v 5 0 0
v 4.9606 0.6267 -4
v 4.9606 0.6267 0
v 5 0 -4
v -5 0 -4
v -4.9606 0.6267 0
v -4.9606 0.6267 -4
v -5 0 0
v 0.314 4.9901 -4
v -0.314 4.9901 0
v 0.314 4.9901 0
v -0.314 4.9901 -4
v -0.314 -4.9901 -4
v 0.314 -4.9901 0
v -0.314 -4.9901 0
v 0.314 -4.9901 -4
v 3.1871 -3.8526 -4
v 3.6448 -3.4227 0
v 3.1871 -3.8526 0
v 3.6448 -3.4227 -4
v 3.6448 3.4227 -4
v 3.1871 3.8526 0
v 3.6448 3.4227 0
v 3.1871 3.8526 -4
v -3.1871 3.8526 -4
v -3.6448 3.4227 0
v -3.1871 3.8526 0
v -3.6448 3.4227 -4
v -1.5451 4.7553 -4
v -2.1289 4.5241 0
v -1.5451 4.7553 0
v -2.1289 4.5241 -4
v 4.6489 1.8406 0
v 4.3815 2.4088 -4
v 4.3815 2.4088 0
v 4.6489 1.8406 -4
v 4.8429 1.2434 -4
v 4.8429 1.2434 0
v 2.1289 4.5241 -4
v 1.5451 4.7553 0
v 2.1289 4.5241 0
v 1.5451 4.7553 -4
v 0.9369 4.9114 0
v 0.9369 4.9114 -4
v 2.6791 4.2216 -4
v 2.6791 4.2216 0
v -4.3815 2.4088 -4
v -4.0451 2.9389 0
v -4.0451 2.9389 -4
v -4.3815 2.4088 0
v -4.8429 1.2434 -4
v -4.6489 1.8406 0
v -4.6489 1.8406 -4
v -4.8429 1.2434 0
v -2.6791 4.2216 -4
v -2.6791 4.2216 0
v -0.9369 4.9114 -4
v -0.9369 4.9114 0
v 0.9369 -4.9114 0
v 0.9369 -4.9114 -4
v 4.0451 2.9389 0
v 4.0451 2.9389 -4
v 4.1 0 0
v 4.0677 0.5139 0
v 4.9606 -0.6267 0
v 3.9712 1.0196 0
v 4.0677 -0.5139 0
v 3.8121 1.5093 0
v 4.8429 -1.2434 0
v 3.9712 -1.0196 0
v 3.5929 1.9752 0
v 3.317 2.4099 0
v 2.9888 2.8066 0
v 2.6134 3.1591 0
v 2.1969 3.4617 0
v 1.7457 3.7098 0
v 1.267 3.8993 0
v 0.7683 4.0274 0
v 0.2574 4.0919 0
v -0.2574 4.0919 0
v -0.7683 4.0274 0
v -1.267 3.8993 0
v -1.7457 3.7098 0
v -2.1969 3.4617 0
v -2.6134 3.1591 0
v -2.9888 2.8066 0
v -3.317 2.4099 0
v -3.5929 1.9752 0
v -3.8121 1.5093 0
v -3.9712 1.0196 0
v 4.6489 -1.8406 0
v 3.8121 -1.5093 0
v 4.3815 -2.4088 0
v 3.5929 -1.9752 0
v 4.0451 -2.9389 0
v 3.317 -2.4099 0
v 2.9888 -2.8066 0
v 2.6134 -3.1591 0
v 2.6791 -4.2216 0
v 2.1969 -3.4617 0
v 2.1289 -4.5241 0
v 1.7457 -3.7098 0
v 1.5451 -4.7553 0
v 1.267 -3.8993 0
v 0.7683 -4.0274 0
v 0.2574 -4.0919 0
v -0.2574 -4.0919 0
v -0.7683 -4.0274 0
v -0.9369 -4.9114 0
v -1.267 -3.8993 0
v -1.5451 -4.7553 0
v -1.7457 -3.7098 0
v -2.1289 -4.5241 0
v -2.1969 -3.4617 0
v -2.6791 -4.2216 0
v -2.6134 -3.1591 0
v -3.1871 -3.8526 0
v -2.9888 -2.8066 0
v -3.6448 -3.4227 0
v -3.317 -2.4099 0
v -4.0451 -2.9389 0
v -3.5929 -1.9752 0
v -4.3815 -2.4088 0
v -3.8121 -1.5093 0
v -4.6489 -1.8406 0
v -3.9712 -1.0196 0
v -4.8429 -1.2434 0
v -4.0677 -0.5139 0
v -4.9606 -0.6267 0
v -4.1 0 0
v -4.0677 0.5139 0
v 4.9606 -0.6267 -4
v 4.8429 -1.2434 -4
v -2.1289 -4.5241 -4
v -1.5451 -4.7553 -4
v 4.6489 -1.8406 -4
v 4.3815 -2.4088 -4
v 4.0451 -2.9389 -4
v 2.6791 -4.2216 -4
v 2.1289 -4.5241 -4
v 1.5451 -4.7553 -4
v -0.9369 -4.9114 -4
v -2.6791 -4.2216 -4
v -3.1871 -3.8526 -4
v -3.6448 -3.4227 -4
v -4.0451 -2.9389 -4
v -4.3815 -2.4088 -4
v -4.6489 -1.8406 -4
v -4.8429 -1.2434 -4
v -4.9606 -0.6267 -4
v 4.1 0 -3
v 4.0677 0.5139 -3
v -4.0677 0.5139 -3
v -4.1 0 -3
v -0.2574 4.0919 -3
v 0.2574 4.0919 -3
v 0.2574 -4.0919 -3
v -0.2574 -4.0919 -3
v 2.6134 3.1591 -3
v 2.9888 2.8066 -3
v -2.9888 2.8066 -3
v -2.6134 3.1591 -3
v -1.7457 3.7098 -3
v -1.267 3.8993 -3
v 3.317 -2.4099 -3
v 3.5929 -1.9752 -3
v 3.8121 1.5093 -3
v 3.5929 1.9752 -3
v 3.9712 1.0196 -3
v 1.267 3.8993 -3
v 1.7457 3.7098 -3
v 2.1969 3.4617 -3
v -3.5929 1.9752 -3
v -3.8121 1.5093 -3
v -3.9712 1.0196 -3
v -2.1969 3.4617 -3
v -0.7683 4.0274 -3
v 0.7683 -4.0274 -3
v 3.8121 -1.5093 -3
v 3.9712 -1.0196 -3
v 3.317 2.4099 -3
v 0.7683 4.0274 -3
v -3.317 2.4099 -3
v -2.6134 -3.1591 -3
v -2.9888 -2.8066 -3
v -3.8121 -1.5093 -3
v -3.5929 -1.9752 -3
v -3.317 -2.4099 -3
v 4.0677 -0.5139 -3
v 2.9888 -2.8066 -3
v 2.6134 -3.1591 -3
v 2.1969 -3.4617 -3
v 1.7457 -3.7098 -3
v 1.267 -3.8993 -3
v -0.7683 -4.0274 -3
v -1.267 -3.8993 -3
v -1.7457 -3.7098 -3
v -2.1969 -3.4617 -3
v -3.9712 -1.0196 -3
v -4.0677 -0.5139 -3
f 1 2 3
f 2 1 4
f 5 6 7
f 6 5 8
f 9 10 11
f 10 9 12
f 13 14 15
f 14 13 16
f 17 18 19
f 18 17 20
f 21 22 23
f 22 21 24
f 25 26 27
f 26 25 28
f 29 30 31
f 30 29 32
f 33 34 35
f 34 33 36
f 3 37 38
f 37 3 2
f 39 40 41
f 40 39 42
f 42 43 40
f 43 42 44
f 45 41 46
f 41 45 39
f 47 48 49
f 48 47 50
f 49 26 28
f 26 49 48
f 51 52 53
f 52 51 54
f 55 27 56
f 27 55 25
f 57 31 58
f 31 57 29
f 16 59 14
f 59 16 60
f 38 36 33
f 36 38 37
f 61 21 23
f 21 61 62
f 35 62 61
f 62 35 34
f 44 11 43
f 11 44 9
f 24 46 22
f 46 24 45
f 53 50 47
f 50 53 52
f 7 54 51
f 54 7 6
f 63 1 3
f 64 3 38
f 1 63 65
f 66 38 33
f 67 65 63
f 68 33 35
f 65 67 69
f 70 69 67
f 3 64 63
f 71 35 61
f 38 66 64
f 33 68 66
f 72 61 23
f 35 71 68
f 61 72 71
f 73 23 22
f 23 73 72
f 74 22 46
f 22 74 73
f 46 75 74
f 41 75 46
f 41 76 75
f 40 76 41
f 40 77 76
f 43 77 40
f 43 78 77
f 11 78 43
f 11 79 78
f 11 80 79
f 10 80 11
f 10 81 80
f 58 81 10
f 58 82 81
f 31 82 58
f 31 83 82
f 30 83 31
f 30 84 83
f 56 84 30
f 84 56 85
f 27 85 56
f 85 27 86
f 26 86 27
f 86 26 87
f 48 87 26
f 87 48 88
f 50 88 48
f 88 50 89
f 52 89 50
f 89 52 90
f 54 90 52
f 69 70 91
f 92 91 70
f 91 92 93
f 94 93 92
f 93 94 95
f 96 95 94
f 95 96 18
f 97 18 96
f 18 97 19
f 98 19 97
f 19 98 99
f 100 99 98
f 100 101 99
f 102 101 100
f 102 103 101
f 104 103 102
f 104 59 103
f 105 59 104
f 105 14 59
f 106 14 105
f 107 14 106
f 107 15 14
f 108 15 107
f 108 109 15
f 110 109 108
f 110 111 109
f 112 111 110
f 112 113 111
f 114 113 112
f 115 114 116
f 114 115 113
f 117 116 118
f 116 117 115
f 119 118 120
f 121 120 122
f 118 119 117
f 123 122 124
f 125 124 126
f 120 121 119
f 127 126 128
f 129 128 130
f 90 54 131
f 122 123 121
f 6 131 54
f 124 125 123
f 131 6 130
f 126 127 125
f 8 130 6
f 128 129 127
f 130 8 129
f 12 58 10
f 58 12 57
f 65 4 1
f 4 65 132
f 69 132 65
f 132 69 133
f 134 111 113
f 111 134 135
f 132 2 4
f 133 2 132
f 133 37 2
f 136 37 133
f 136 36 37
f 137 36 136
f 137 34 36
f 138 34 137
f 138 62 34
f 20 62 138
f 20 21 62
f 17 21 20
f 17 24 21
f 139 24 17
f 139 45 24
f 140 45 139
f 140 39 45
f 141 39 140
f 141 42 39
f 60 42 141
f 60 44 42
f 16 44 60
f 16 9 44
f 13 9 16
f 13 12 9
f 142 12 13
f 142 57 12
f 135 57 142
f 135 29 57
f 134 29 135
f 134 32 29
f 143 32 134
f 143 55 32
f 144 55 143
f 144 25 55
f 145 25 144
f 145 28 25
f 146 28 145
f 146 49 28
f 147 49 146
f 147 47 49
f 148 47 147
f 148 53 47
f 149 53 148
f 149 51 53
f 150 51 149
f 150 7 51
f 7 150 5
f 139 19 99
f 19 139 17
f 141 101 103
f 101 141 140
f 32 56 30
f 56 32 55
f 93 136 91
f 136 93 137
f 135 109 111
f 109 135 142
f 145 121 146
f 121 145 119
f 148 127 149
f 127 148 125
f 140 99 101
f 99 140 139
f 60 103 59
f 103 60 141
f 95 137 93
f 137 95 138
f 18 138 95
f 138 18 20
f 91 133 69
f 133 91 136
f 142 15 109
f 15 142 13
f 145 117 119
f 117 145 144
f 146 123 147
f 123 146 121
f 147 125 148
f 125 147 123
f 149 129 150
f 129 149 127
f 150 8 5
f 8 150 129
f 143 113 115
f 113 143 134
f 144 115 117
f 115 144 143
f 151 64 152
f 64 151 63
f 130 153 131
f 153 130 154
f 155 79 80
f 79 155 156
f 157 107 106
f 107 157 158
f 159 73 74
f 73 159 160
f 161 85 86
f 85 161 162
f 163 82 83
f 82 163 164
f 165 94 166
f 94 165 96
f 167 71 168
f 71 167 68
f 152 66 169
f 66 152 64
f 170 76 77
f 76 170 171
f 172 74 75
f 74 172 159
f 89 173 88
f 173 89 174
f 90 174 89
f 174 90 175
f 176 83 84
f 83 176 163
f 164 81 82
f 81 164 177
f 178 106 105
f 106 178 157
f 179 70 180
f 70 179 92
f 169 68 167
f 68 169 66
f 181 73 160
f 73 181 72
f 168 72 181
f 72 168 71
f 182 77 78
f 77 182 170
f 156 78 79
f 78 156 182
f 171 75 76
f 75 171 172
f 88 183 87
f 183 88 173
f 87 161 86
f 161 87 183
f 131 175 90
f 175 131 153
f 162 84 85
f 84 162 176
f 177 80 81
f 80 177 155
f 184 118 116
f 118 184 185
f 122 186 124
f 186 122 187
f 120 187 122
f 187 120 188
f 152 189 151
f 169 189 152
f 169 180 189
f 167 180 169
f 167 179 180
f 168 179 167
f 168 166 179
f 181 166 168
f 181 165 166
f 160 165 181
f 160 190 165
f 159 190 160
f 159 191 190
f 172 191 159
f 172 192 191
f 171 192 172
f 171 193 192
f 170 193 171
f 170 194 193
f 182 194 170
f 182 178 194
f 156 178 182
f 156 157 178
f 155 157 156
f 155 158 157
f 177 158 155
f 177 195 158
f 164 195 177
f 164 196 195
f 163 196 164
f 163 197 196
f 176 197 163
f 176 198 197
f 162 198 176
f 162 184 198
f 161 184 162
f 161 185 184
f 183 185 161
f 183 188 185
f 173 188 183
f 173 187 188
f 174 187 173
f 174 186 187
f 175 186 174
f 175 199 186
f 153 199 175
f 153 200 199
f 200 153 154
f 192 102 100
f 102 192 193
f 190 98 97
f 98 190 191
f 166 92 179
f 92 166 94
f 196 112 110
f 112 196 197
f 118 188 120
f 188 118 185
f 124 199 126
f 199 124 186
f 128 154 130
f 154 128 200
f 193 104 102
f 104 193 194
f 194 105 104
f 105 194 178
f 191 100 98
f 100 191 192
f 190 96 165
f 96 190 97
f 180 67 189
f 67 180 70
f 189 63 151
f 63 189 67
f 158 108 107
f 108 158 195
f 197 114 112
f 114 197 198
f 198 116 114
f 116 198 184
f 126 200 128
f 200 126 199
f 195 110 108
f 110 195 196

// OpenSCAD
$fn = 50;


difference() {
	union() {
		translate(v = [0, 0, -4.0000000000]) {
			cylinder(h = 4, r = 5.0000000000);
		}
	}
	union() {
		#translate(v = [0, 0, -3.0000000000]) {
			cylinder(h = 3, r = 4.1000000000);
		}
	}
}
